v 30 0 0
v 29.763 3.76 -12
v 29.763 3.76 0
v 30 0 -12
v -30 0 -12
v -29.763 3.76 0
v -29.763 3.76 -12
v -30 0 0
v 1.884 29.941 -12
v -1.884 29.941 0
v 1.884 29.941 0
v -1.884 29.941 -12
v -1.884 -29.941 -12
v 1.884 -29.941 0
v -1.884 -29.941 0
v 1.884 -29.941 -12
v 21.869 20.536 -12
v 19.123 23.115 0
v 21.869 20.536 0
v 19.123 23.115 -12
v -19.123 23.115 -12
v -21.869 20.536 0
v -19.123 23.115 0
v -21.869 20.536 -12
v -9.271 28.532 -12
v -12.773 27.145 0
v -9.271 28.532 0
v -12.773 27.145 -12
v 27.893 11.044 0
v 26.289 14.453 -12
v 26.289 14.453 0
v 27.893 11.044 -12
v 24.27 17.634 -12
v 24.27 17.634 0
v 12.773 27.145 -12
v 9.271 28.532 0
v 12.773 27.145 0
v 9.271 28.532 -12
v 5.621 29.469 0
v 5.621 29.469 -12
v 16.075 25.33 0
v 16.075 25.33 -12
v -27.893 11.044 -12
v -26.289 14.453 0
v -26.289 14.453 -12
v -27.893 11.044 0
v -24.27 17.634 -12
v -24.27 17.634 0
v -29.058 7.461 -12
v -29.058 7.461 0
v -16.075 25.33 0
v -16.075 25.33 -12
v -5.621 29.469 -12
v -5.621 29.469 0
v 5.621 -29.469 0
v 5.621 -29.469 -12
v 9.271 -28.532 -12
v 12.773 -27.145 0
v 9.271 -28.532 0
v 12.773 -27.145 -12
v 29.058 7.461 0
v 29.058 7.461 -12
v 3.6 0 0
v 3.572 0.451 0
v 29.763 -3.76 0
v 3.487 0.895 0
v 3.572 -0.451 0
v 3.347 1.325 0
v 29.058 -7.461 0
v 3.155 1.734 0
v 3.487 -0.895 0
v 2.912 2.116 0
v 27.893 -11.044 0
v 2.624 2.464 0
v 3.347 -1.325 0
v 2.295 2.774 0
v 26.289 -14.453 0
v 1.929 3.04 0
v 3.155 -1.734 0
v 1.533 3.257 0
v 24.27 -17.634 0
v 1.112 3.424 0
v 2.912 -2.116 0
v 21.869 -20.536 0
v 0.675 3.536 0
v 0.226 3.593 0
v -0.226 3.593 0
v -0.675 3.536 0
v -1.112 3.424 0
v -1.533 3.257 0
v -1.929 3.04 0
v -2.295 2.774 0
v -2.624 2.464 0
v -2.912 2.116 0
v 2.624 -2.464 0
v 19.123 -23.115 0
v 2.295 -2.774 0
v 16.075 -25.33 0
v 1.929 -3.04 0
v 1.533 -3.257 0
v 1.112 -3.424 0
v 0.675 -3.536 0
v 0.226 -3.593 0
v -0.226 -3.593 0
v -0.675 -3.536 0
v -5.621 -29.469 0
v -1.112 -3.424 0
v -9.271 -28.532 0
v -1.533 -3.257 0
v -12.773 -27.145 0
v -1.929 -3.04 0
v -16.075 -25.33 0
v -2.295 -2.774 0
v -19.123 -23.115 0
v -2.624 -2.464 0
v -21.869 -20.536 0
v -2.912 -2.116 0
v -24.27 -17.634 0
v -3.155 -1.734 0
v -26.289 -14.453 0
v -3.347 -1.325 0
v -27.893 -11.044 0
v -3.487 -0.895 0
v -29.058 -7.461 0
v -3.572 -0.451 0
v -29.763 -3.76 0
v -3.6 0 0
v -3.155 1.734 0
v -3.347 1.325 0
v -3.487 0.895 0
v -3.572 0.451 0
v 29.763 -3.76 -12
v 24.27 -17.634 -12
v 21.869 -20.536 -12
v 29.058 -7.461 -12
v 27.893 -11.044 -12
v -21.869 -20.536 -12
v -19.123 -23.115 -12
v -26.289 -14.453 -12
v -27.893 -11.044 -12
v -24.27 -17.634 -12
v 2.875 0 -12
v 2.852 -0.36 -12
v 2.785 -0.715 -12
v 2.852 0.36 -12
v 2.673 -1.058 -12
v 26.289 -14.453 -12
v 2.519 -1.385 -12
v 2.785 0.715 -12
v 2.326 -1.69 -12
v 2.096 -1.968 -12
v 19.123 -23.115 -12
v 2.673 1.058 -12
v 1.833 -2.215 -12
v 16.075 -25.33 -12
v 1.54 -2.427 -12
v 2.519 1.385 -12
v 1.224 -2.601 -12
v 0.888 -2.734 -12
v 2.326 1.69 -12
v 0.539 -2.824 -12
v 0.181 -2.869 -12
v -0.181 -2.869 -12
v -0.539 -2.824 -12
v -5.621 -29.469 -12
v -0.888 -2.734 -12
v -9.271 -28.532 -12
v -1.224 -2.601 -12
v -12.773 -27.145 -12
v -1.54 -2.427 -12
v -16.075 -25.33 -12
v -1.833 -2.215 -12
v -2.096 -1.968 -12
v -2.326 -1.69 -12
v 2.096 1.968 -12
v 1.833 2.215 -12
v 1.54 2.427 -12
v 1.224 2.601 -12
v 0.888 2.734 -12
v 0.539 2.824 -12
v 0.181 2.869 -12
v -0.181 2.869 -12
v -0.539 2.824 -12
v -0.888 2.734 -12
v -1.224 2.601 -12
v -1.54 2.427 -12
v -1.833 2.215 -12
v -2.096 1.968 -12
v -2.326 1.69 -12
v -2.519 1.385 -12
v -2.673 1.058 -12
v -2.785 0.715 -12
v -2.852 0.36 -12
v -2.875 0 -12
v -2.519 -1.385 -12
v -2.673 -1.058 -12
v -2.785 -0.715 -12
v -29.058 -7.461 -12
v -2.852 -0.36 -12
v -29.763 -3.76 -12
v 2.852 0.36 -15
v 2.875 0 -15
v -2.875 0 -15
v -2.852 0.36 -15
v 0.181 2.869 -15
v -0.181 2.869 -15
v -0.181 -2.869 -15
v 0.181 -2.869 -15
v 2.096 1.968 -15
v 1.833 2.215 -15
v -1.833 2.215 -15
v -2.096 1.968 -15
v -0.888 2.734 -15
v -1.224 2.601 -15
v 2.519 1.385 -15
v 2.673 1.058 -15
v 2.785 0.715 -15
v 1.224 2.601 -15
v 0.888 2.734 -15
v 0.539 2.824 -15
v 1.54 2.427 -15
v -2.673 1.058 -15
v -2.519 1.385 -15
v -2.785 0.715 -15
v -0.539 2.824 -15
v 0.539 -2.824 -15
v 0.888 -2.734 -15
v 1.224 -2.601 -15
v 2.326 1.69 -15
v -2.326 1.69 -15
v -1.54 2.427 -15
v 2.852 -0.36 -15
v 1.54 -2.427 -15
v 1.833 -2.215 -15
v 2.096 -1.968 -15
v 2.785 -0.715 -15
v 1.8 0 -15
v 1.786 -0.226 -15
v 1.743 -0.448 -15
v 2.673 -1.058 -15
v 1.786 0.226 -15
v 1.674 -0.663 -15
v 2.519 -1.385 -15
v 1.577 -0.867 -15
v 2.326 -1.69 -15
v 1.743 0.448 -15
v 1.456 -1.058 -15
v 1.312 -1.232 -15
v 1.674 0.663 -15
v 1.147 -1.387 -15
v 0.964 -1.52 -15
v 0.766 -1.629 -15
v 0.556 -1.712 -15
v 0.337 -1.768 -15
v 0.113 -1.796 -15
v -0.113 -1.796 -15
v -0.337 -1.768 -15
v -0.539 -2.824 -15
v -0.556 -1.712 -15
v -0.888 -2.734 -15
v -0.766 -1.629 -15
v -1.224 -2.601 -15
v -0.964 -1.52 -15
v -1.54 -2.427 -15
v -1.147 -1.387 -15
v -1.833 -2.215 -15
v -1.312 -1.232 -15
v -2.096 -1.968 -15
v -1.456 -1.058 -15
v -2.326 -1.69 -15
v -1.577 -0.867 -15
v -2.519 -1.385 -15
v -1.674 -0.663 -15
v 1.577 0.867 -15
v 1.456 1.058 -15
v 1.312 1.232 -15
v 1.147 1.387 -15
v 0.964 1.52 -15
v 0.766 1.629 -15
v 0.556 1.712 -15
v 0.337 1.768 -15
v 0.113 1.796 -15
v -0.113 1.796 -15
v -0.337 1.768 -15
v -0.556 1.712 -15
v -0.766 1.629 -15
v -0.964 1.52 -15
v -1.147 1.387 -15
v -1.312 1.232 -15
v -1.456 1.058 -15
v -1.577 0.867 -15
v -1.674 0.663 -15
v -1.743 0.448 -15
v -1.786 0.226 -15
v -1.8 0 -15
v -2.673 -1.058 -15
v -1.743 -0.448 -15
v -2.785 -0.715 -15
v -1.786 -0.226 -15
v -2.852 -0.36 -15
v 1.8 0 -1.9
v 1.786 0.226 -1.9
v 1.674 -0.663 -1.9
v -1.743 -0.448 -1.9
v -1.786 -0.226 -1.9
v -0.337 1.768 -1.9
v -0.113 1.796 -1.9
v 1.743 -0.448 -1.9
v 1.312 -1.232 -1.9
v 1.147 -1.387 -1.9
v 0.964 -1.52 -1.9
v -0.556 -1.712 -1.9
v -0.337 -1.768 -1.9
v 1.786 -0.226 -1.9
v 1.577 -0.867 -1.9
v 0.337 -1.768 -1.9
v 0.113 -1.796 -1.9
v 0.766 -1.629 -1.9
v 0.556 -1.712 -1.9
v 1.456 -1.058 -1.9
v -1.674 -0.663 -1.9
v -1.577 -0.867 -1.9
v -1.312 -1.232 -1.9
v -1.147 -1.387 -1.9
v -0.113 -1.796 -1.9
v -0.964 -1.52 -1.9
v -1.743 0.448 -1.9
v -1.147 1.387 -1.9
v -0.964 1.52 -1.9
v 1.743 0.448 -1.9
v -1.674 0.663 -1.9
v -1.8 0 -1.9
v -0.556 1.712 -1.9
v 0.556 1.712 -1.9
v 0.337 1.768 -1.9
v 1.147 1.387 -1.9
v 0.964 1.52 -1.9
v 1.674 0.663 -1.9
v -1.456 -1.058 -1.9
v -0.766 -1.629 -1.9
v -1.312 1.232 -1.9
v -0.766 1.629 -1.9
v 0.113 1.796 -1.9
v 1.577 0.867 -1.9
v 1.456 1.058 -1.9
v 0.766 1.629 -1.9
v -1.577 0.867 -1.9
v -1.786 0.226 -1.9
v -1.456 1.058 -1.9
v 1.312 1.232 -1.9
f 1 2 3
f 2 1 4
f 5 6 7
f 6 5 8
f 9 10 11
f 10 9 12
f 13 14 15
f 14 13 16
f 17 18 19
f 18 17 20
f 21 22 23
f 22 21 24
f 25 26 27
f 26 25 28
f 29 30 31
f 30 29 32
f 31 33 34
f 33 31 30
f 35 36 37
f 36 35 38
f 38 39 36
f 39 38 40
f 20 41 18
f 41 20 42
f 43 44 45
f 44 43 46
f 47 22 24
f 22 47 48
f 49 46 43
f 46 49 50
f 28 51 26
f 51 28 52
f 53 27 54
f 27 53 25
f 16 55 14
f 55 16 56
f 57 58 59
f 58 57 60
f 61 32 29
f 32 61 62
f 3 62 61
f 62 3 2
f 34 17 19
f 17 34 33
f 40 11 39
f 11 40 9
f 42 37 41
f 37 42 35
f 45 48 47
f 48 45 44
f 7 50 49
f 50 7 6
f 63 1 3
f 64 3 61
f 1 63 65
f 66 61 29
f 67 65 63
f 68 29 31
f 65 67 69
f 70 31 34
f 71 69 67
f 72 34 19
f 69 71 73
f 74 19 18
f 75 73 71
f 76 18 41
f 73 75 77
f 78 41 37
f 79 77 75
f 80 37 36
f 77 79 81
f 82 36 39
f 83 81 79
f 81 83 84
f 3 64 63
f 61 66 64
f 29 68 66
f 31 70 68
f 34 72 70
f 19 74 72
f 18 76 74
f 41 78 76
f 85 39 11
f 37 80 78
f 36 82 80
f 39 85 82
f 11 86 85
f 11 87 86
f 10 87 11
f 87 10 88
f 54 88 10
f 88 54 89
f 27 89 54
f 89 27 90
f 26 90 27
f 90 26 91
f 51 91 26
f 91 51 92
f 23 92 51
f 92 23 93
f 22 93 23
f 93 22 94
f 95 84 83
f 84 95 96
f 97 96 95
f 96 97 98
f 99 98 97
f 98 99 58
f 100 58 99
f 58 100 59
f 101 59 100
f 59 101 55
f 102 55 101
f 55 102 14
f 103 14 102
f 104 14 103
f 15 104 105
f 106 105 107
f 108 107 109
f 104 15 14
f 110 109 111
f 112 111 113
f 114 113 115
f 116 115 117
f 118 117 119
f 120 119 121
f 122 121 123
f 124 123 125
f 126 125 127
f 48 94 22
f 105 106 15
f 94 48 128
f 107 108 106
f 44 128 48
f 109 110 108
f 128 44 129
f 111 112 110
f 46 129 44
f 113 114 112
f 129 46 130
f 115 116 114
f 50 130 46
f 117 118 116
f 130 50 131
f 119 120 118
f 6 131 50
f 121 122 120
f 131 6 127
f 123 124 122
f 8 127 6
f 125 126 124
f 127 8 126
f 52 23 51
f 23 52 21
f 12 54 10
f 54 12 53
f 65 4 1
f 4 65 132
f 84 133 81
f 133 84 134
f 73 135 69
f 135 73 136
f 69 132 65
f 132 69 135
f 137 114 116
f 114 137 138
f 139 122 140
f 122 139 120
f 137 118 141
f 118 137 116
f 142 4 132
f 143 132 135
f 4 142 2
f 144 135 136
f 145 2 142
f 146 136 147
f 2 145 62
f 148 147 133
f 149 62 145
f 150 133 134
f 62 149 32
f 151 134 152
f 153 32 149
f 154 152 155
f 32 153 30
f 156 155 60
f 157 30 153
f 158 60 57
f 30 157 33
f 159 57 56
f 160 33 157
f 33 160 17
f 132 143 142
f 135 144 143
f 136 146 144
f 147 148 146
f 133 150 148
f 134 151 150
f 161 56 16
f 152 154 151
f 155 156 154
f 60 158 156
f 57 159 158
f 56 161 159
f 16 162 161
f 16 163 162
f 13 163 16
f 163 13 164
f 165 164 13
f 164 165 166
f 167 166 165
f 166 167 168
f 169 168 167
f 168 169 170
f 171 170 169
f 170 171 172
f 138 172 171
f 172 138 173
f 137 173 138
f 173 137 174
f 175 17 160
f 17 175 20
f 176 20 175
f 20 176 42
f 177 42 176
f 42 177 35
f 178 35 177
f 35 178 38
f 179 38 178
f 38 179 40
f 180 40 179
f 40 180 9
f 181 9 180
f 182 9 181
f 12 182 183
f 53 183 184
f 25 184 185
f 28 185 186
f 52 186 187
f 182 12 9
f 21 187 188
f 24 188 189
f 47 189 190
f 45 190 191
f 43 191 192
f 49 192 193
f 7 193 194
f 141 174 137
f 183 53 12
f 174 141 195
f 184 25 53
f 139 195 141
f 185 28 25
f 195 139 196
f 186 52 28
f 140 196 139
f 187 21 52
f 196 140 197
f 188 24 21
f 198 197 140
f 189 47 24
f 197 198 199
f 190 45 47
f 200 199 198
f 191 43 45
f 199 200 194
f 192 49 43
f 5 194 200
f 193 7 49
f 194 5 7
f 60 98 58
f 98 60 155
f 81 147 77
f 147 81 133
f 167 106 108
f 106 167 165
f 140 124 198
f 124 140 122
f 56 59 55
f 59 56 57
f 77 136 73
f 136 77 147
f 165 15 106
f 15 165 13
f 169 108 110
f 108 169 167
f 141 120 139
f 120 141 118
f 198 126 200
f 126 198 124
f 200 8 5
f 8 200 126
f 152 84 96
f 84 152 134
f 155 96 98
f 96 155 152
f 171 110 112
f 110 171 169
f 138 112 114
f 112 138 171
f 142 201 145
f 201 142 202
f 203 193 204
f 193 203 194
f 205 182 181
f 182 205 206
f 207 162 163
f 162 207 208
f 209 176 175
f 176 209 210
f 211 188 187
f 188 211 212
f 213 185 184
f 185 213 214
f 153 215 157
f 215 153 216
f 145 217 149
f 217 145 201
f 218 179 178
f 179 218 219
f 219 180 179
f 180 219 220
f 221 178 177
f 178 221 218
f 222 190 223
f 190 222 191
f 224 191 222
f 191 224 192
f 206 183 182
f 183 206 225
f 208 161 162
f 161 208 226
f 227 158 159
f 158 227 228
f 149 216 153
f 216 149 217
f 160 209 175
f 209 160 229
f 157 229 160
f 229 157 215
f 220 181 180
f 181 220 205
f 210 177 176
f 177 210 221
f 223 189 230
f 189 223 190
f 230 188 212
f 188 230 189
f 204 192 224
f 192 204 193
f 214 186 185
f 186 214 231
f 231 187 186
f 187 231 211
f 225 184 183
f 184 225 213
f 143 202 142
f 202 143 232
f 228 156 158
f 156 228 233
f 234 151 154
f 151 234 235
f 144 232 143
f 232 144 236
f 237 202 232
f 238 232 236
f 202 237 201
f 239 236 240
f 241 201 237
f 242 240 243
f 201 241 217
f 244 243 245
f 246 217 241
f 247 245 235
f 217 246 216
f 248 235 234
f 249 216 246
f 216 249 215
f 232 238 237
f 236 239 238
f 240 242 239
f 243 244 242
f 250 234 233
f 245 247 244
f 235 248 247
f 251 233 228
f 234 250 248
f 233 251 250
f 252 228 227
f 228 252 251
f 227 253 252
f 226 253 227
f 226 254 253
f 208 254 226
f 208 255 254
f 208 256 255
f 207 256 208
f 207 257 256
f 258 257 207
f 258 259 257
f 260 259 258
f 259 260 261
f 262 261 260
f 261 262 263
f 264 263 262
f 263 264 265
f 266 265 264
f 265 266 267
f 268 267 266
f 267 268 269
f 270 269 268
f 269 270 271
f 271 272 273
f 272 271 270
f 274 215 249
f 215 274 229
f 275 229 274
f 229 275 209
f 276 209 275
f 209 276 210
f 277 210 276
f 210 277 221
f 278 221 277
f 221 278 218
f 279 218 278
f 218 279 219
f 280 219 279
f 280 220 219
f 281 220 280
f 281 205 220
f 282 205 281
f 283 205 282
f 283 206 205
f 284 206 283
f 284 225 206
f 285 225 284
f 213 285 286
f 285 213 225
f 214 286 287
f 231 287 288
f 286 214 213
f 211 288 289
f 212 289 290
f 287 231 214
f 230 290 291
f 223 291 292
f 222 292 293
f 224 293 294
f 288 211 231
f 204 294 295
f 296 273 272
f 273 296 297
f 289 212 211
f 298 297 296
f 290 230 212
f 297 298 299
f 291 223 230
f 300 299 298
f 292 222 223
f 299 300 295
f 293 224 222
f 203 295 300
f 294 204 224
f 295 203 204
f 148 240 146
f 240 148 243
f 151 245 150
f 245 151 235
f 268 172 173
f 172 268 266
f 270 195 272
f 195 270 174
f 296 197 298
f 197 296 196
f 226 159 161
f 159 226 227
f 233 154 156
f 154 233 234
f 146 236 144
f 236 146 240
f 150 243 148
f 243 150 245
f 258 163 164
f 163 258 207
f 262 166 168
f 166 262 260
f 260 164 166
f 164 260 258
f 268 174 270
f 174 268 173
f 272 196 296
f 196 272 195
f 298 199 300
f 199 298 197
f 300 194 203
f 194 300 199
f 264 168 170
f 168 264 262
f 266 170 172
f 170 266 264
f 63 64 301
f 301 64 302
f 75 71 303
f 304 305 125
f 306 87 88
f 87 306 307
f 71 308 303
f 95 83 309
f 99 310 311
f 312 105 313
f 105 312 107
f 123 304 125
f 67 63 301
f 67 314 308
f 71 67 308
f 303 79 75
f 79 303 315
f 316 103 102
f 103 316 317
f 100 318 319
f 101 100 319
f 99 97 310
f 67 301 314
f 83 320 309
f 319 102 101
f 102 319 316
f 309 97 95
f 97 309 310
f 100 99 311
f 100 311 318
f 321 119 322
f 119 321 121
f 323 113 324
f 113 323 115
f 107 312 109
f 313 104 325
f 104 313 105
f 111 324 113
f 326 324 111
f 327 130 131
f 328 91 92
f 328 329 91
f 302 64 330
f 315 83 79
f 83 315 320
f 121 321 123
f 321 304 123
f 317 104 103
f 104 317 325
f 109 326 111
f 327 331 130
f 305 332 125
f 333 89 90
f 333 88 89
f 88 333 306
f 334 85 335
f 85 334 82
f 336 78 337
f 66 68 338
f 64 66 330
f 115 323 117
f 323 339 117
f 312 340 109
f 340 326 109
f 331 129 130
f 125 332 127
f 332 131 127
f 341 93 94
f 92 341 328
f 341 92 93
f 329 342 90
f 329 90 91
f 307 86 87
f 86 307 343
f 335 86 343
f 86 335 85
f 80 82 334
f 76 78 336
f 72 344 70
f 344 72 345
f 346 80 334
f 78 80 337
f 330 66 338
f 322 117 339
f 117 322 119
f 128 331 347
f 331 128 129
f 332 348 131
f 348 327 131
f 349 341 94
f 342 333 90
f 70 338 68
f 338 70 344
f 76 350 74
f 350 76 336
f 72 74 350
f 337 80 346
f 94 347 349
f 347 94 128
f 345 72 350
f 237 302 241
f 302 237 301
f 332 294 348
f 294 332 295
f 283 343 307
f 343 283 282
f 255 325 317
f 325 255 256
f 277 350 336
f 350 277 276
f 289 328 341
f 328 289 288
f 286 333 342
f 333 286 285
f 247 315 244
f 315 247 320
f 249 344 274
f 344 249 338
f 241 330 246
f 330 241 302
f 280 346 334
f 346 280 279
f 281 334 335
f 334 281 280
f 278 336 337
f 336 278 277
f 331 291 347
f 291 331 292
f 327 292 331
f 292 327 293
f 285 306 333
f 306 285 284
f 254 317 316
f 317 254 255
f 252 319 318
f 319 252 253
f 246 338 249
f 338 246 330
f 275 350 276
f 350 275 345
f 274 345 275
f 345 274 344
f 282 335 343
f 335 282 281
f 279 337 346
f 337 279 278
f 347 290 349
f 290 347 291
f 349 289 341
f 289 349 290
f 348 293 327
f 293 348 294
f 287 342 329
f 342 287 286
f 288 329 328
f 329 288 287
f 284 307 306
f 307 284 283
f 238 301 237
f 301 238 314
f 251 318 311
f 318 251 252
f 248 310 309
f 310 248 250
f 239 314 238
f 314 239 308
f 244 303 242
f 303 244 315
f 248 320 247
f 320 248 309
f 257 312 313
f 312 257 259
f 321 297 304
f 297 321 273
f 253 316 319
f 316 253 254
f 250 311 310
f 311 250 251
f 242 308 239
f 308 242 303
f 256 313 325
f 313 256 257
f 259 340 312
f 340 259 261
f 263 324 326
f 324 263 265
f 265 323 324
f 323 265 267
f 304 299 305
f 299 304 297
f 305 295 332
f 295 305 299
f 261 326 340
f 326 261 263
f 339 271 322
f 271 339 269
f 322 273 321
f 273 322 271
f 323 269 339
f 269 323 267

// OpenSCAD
$fn = 50;

difference() {
	union() {
		translate(v = [0, 0, -12.0]) {
			cylinder(h = 12, r = 30.0);
		}
		#translate(v = [0, 0, -15.0]) {
			cylinder(h = 15, r = 2.875);
		}
	}
	union() {
		translate(v = [0, 0, 0]) {
			rotate(a = [0, 0, 0]) {
				difference() {
					union() {
						translate(v = [0, 0, -15.0]) {
							cylinder(h = 15, r = 1.5);
						}
						translate(v = [0, 0, -1.9]) {
							cylinder(h = 1.9, r1 = 1.8, r2 = 3.6);
						}
						translate(v = [0, 0, -15.0]) {
							cylinder(h = 15, r = 1.8);
						}
						translate(v = [0, 0, -15.0]) {
							cylinder(h = 15, r = 1.5);
						}
					}
					union();
				}
			}
		}
	}
}
